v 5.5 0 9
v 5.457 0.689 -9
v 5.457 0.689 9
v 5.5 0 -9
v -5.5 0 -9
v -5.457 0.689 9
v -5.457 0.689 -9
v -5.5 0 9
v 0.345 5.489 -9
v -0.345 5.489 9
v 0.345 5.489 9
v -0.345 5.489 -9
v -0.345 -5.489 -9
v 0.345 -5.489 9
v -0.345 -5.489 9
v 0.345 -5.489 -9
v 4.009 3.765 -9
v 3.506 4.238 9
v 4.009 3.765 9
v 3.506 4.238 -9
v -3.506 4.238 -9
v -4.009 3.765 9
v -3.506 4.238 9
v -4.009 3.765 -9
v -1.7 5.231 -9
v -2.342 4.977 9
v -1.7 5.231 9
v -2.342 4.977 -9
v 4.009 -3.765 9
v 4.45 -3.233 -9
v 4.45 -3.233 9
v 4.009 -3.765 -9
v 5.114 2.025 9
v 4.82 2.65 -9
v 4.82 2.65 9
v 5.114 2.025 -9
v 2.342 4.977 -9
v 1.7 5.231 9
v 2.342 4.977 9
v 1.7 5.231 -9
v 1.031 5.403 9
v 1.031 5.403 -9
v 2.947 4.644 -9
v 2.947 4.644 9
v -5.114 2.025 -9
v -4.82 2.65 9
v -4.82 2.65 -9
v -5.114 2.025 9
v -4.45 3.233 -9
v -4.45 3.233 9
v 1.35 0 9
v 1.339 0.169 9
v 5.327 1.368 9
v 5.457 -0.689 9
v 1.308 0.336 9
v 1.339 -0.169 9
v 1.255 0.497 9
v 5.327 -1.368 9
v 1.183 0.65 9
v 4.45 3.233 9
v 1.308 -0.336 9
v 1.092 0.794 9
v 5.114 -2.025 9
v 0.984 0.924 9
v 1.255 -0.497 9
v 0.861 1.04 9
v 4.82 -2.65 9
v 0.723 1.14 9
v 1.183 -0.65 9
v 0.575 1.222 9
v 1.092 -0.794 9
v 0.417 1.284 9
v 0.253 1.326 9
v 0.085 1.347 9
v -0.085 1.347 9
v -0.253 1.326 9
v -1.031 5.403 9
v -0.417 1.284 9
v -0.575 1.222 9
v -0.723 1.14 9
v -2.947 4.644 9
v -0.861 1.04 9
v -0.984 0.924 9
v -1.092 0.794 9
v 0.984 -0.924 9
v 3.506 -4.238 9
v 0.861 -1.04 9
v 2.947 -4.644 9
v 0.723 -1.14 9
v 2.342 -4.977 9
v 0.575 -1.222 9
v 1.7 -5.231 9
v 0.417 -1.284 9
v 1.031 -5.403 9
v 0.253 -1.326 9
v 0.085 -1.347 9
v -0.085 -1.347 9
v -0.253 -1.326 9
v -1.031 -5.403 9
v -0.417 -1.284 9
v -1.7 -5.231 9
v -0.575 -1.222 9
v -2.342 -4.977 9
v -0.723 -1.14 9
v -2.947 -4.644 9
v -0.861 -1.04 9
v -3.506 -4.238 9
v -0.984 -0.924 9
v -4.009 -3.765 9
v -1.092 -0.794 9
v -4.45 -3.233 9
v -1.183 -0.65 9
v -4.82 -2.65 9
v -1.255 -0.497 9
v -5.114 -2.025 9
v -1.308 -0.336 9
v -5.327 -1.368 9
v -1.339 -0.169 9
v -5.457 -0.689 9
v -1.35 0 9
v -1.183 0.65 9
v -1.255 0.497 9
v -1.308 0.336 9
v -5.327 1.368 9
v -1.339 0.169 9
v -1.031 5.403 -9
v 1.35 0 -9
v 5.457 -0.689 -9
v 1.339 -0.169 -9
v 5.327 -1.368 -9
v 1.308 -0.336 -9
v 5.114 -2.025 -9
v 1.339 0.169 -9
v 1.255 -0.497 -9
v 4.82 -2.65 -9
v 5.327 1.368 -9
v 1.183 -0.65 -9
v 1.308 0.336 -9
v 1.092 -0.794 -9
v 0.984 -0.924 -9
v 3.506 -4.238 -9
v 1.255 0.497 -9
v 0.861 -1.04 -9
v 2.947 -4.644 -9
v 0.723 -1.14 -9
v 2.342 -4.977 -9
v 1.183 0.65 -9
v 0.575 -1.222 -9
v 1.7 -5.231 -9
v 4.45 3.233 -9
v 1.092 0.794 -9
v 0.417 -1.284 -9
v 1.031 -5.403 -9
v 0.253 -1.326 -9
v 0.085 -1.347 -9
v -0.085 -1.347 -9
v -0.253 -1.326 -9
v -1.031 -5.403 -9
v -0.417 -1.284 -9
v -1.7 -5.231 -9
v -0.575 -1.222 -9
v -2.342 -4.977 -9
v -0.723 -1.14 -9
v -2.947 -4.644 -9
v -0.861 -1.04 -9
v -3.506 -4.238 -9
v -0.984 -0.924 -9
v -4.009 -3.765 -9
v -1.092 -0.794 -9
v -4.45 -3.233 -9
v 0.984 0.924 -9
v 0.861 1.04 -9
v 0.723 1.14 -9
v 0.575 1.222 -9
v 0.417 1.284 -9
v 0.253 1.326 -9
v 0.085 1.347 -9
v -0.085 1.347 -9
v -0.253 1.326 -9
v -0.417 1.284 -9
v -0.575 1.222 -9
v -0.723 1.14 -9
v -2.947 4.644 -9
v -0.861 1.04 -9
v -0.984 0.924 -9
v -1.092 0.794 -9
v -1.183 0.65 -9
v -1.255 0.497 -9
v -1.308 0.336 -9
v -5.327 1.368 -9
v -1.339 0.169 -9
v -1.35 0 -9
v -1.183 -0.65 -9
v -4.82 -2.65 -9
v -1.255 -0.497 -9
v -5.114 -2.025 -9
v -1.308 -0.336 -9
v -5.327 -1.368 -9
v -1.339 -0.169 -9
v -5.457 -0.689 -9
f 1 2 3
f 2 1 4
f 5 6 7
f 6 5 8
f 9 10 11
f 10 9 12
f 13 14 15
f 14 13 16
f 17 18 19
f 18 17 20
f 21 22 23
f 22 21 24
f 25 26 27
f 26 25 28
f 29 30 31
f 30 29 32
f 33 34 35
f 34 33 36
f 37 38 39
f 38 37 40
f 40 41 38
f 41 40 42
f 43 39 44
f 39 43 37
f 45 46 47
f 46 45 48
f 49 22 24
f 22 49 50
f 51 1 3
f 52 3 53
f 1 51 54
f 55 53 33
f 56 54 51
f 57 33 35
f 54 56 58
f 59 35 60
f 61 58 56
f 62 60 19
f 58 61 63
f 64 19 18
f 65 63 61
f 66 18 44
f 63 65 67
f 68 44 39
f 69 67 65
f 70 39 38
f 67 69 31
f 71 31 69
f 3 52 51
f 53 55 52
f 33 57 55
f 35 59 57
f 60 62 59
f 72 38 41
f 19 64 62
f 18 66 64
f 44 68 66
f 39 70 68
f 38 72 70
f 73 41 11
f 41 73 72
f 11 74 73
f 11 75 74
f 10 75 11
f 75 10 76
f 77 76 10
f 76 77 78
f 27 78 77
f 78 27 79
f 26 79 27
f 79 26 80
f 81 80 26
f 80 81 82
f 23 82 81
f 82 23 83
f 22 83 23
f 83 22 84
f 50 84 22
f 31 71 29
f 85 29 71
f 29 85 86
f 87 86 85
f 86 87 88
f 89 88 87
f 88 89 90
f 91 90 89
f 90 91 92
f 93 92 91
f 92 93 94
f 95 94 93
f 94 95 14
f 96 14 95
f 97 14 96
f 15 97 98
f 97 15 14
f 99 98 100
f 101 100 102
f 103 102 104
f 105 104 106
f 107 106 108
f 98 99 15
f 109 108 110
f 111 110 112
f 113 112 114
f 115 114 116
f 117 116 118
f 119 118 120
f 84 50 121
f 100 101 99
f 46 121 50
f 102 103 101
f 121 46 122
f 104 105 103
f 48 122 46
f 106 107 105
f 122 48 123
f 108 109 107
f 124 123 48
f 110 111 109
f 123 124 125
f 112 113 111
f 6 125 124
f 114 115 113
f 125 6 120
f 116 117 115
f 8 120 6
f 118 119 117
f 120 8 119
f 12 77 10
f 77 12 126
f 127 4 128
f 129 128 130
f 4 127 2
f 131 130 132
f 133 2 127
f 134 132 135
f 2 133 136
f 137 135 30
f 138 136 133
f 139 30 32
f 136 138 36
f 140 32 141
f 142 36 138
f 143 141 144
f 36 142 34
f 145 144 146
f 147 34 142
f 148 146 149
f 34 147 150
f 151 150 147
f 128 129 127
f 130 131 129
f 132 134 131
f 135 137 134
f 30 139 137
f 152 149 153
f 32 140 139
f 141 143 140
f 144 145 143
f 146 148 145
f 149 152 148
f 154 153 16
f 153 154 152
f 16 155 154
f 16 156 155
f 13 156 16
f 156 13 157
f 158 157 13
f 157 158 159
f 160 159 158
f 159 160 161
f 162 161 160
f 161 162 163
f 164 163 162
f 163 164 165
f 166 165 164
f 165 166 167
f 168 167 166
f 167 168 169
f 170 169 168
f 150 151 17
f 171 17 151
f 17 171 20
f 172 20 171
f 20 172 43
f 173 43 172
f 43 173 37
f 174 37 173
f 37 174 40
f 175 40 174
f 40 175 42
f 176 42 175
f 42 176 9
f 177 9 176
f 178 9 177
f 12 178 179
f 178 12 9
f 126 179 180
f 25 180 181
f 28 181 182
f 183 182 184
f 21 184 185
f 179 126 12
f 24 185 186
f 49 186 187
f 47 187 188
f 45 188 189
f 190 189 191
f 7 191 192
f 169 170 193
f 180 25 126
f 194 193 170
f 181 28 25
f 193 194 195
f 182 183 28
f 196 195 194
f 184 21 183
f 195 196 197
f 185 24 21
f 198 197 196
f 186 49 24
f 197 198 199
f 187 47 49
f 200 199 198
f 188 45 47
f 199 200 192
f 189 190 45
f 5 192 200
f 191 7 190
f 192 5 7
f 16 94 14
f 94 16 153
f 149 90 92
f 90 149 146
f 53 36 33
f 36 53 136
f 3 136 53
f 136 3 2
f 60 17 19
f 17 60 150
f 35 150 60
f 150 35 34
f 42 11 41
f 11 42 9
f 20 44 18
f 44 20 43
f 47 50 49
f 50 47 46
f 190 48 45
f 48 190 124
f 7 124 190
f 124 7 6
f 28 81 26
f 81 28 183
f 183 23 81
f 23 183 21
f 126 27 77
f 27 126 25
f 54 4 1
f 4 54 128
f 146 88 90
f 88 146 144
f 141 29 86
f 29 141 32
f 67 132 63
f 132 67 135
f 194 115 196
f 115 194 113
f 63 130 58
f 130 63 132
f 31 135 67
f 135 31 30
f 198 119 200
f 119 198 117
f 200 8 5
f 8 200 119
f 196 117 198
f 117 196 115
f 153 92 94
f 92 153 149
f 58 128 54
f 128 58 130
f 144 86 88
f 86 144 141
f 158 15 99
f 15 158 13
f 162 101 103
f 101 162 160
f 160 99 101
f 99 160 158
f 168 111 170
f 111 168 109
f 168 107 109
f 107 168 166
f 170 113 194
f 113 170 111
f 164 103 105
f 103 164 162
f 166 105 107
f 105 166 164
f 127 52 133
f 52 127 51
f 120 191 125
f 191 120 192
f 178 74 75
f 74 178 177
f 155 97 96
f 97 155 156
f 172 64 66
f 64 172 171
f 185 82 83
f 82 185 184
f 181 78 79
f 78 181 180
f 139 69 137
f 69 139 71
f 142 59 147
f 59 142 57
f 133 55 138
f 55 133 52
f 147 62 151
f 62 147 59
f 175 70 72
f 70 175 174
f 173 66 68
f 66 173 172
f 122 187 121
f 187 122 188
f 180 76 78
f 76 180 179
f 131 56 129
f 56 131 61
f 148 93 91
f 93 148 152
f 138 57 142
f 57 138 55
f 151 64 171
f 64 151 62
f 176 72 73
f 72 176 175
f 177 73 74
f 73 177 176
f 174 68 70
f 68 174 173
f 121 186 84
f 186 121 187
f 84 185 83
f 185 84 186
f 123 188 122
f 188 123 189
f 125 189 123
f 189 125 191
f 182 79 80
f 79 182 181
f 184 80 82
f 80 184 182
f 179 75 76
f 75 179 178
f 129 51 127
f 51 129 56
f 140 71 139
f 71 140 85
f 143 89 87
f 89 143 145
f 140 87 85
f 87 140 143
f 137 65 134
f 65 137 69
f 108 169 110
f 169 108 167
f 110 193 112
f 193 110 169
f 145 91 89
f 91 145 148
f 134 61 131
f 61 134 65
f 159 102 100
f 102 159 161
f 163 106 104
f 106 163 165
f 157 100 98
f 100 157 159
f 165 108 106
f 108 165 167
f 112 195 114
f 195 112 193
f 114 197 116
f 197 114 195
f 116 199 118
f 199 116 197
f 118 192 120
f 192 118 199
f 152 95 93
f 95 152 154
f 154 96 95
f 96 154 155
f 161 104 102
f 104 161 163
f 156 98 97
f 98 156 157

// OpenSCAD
$fn = 50;


difference() {
	union() {
		translate(v = [0, 0, -9.0000000000]) {
			cylinder(h = 18, r = 5.5000000000);
		}
	}
	union() {
		translate(v = [0, 0, -100.0000000000]) {
			cylinder(h = 200, r = 1.3500000000);
		}
	}
}
